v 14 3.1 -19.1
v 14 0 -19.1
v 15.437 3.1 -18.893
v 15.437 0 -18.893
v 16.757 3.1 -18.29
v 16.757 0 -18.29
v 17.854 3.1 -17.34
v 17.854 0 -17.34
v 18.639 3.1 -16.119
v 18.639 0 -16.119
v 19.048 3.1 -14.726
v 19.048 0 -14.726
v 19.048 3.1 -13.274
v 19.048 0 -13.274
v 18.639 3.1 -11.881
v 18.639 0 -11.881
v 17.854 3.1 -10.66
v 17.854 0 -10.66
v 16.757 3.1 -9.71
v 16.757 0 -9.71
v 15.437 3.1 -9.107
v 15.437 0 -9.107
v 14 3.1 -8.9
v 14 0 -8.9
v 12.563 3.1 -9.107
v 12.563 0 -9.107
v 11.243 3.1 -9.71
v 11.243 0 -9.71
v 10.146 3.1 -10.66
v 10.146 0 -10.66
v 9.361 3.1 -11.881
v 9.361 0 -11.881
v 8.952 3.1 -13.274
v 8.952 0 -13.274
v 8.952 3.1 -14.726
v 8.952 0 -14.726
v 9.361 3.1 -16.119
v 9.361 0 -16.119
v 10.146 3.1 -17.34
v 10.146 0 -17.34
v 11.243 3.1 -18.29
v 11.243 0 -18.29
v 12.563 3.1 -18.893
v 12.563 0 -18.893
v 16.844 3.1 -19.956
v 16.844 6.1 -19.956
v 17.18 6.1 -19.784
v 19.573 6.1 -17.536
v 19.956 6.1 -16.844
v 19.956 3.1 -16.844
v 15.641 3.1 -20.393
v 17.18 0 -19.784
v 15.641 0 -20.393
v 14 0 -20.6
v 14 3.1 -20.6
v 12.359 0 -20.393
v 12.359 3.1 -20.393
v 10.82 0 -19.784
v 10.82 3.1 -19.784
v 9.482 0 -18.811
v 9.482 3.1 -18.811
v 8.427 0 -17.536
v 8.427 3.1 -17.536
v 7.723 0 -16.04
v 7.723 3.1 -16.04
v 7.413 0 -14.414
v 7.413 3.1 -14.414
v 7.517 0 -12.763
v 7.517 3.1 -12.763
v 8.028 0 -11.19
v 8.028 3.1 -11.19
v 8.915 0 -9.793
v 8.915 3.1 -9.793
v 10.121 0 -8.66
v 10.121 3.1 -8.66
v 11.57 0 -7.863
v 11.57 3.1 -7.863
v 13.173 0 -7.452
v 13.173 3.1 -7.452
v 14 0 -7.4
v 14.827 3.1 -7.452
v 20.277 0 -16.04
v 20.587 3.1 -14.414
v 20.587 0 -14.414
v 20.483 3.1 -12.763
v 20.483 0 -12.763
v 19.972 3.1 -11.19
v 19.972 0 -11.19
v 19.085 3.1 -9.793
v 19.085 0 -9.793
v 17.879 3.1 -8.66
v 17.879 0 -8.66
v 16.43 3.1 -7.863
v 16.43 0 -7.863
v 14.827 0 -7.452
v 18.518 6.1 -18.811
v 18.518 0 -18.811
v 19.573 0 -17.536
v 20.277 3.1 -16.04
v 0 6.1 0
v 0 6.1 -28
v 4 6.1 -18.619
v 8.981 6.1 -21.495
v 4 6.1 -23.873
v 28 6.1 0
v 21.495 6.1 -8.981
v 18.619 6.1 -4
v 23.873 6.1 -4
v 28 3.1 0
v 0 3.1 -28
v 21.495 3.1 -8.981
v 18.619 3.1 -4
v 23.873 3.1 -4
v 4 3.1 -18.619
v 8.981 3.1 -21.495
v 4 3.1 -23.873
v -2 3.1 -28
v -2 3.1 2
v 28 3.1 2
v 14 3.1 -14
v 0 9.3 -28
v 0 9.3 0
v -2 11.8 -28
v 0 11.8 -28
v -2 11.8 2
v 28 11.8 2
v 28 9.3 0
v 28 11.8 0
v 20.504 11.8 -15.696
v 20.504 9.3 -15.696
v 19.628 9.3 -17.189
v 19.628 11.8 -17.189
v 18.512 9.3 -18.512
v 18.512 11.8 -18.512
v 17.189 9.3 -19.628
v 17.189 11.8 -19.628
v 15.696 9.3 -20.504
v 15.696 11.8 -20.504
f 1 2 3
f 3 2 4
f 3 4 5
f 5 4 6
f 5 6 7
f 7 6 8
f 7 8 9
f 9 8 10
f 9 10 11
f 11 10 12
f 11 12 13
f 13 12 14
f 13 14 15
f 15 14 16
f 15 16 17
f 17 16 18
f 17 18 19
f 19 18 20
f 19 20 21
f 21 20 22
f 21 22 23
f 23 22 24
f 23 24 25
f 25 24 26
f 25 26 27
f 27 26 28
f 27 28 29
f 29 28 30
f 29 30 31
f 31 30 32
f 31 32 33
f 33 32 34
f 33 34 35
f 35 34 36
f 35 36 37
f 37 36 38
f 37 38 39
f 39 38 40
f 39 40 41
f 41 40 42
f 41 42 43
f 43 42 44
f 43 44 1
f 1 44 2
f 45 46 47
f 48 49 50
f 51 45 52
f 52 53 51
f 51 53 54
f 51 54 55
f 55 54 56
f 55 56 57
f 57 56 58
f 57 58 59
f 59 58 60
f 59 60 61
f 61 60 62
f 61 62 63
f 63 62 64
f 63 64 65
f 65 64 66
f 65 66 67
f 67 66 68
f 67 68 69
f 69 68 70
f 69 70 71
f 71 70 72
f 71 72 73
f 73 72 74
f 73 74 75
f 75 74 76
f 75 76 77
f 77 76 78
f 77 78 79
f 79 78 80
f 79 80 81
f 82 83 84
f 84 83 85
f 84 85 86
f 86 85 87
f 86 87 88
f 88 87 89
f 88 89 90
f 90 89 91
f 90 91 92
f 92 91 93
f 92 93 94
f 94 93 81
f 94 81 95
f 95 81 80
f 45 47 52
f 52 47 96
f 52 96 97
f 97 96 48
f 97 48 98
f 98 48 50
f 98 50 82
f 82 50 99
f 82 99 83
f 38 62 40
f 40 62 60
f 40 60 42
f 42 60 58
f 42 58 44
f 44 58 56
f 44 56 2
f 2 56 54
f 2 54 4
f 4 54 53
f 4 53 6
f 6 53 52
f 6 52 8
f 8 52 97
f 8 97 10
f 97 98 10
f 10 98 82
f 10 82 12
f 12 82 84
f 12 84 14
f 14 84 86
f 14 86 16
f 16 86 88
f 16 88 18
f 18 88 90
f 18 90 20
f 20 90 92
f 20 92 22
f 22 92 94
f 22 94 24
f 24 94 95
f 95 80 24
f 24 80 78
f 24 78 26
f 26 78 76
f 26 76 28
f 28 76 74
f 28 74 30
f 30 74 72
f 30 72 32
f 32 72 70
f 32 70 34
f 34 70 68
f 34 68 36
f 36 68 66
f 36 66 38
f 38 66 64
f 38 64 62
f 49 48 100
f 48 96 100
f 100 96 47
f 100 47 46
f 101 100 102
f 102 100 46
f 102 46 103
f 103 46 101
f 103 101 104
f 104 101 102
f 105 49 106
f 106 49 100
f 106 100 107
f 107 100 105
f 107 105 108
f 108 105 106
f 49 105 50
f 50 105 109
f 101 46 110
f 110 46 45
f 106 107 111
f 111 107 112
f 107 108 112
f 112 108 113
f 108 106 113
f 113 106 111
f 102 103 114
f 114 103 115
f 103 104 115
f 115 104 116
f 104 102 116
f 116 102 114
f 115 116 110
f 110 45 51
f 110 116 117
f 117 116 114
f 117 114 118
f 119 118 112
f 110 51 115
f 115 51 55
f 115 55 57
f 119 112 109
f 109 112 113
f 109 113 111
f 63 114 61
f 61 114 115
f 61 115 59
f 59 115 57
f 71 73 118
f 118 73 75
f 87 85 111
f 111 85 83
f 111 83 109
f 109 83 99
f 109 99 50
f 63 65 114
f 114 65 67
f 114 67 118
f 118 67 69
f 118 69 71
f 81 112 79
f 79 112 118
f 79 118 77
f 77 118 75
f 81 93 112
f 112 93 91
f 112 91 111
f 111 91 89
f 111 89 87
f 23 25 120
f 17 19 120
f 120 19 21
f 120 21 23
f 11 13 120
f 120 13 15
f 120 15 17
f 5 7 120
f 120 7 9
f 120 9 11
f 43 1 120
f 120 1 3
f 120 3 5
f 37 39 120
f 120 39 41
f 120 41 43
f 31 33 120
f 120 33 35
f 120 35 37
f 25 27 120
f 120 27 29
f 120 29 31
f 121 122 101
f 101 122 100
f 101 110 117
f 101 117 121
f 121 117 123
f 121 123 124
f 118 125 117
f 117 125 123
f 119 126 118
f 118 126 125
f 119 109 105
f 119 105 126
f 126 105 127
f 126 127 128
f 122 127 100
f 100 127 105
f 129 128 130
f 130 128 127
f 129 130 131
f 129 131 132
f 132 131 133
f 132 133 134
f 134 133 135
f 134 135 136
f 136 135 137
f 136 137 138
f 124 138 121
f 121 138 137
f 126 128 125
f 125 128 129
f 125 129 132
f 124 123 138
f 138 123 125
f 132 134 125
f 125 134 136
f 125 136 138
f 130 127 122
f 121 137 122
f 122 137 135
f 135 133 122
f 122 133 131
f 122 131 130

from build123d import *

# Parameters (mm, degrees)
BOSS_EXTRUDE1_DEPTH      = 3.1
BOSS_EXTRUDE2_DEPTH      = 3
BOSS_EXTRUDE4_DEPTH      = 3.2
BOSS_EXTRUDE4_DEPTH_BACK = 3
BOSS_EXTRUDE5_DEPTH      = 2.5


with BuildPart() as part:
    # Sketch1 → Boss-Extrude1 (new body)
    with BuildSketch(Plane(origin=(0, 0, 0), x_dir=(1, 0, 0), z_dir=(0, 1, 0))):
        with BuildLine():
            ThreePointArc((20.6, 14), (16.525710654, 20.097604915), (9.333095244, 18.666904756))
            Line((9.333095244, 18.666904756), (10.393755416, 17.606244584))
            ThreePointArc((10.393755416, 17.606244584), (15.951685505, 18.711785616), (19.1, 14))
            ThreePointArc((19.1, 14), (18.711785616, 12.048314495), (17.606244584, 10.393755416))
            Line((17.606244584, 10.393755416), (18.666904756, 9.333095244))
            ThreePointArc((18.666904756, 9.333095244), (20.097604915, 11.474289346), (20.6, 14))
        make_face()
        with BuildLine():
            Line((10.393755416, 17.606244584), (9.333095244, 18.666904756))
            ThreePointArc((9.333095244, 18.666904756), (9.333095244, 9.333095244), (18.666904756, 9.333095244))
            Line((18.666904756, 9.333095244), (17.606244584, 10.393755416))
            ThreePointArc((17.606244584, 10.393755416), (10.393755416, 10.393755416), (10.393755416, 17.606244584))
        make_face()
    extrude(amount=BOSS_EXTRUDE1_DEPTH)

    # Sketch2 → Boss-Extrude2 (add)
    with BuildSketch(Plane(origin=(0, 3.1, 0), x_dir=(1, 0, 0), z_dir=(0, 1, 0))):
        with BuildLine():
            Line((16.844257653, 19.955686224), (0, 28))
            Line((0, 28), (4.242424242, 23.757575758))
            Line((4.242424242, 23.757575758), (8.980990355, 21.494578276))
            Line((8.980990355, 21.494578276), (7.411542732, 20.588457268))
            Line((7.411542732, 20.588457268), (9.333095244, 18.666904756))
            ThreePointArc((9.333095244, 18.666904756), (12.883868272, 20.504940428), (16.844257653, 19.955686224))
        make_face()
        with BuildLine():
            Line((0, 28), (0, 0))
            Line((0, 0), (9.333095244, 9.333095244))
            ThreePointArc((9.333095244, 9.333095244), (7.4, 14), (9.333095244, 18.666904756))
            Line((9.333095244, 18.666904756), (7.411542732, 20.588457268))
            Line((7.411542732, 20.588457268), (4, 18.618802154))
            Line((4, 18.618802154), (4, 23.873350327))
            Line((4, 23.873350327), (4.242424242, 23.757575758))
            Line((4.242424242, 23.757575758), (0, 28))
        make_face()
        with BuildLine():
            Line((9.333095244, 9.333095244), (0, 0))
            Line((0, 0), (28, 0))
            Line((28, 0), (23.757575758, 4.242424242))
            Line((23.757575758, 4.242424242), (23.873350327, 4))
            Line((23.873350327, 4), (18.618802154, 4))
            Line((18.618802154, 4), (20.588457268, 7.411542732))
            Line((20.588457268, 7.411542732), (18.666904756, 9.333095244))
            ThreePointArc((18.666904756, 9.333095244), (14, 7.4), (9.333095244, 9.333095244))
        make_face()
        with BuildLine():
            Line((23.757575758, 4.242424242), (28, 0))
            Line((28, 0), (19.955686224, 16.844257653))
            ThreePointArc((19.955686224, 16.844257653), (20.436906442, 15.458161671), (20.6, 14))
            ThreePointArc((20.6, 14), (20.097604915, 11.474289346), (18.666904756, 9.333095244))
            Line((18.666904756, 9.333095244), (20.588457268, 7.411542732))
            Line((20.588457268, 7.411542732), (21.494578276, 8.980990355))
            Line((21.494578276, 8.980990355), (23.757575758, 4.242424242))
        make_face()
        with BuildLine():
            ThreePointArc((9.333095244, 18.666904756), (7.4, 14), (9.333095244, 9.333095244))
            Line((9.333095244, 9.333095244), (10.393755416, 10.393755416))
            ThreePointArc((10.393755416, 10.393755416), (8.9, 14), (10.393755416, 17.606244584))
            Line((10.393755416, 17.606244584), (9.333095244, 18.666904756))
        make_face()
        with BuildLine():
            Line((10.393755416, 10.393755416), (9.333095244, 9.333095244))
            ThreePointArc((9.333095244, 9.333095244), (14, 7.4), (18.666904756, 9.333095244))
            Line((18.666904756, 9.333095244), (17.606244584, 10.393755416))
            ThreePointArc((17.606244584, 10.393755416), (14, 8.9), (10.393755416, 10.393755416))
        make_face()
        with BuildLine():
            ThreePointArc((18.666904756, 18.666904756), (17.810463174, 19.388911801), (16.844257653, 19.955686224))
            ThreePointArc((16.844257653, 19.955686224), (12.883868272, 20.504940428), (9.333095244, 18.666904756))
            Line((9.333095244, 18.666904756), (10.393755416, 17.606244584))
            ThreePointArc((10.393755416, 17.606244584), (14, 19.1), (17.606244584, 17.606244584))
            Line((17.606244584, 17.606244584), (18.666904756, 18.666904756))
        make_face()
        with BuildLine():
            ThreePointArc((20.6, 14), (20.436906442, 15.458161671), (19.955686224, 16.844257653))
            ThreePointArc((19.955686224, 16.844257653), (19.388911801, 17.810463174), (18.666904756, 18.666904756))
            Line((18.666904756, 18.666904756), (17.606244584, 17.606244584))
            ThreePointArc((17.606244584, 17.606244584), (18.711785616, 15.951685505), (19.1, 14))
            ThreePointArc((19.1, 14), (18.711785616, 12.048314495), (17.606244584, 10.393755416))
            Line((17.606244584, 10.393755416), (18.666904756, 9.333095244))
            ThreePointArc((18.666904756, 9.333095244), (20.097604915, 11.474289346), (20.6, 14))
        make_face()
        with BuildLine():
            ThreePointArc((10.393755416, 17.606244584), (8.9, 14), (10.393755416, 10.393755416))
            Line((10.393755416, 10.393755416), (14, 14))
            Line((14, 14), (10.393755416, 17.606244584))
        make_face()
        with BuildLine():
            Line((14, 14), (10.393755416, 10.393755416))
            ThreePointArc((10.393755416, 10.393755416), (14, 8.9), (17.606244584, 10.393755416))
            Line((17.606244584, 10.393755416), (14, 14))
        make_face()
        with BuildLine():
            Line((17.606244584, 17.606244584), (14, 14))
            Line((14, 14), (17.606244584, 10.393755416))
            ThreePointArc((17.606244584, 10.393755416), (18.711785616, 12.048314495), (19.1, 14))
            ThreePointArc((19.1, 14), (18.711785616, 15.951685505), (17.606244584, 17.606244584))
        make_face()
        with BuildLine():
            Line((10.393755416, 17.606244584), (14, 14))
            Line((14, 14), (17.606244584, 17.606244584))
            ThreePointArc((17.606244584, 17.606244584), (14, 19.1), (10.393755416, 17.606244584))
        make_face()
    extrude(amount=BOSS_EXTRUDE2_DEPTH)

    # Sketch4 → Boss-Extrude4 (add, two sides: drawn at the far end of the back side and taken through both)
    with BuildSketch(Plane(origin=(0, 6.1, 0), x_dir=(1, 0, 0), z_dir=(0, 1, 0)).offset(-BOSS_EXTRUDE4_DEPTH_BACK)):
        Polygon((0, 28), (-2, 28), (-2, -2), (28, -2), (28, 0), (0, 0), align=None)
    extrude(amount=BOSS_EXTRUDE4_DEPTH + BOSS_EXTRUDE4_DEPTH_BACK)

    # Sketch5 → Boss-Extrude5 (add)
    with BuildSketch(Plane(origin=(0, 9.3, 0), x_dir=(1, 0, 0), z_dir=(0, 1, 0))):
        with BuildLine():
            Line((-2, 28), (0, 28))
            Line((0, 28), (15.695653699, 20.504225127))
            ThreePointArc((15.695653699, 20.504225127), (18.512471949, 18.512471949), (20.504225127, 15.695653699))
            Line((20.504225127, 15.695653699), (28, 0))
            Line((28, 0), (28, -2))
            Line((28, -2), (-2, -2))
            Line((-2, -2), (-2, 28))
        make_face()
    extrude(amount=BOSS_EXTRUDE5_DEPTH)


solid = part.part
